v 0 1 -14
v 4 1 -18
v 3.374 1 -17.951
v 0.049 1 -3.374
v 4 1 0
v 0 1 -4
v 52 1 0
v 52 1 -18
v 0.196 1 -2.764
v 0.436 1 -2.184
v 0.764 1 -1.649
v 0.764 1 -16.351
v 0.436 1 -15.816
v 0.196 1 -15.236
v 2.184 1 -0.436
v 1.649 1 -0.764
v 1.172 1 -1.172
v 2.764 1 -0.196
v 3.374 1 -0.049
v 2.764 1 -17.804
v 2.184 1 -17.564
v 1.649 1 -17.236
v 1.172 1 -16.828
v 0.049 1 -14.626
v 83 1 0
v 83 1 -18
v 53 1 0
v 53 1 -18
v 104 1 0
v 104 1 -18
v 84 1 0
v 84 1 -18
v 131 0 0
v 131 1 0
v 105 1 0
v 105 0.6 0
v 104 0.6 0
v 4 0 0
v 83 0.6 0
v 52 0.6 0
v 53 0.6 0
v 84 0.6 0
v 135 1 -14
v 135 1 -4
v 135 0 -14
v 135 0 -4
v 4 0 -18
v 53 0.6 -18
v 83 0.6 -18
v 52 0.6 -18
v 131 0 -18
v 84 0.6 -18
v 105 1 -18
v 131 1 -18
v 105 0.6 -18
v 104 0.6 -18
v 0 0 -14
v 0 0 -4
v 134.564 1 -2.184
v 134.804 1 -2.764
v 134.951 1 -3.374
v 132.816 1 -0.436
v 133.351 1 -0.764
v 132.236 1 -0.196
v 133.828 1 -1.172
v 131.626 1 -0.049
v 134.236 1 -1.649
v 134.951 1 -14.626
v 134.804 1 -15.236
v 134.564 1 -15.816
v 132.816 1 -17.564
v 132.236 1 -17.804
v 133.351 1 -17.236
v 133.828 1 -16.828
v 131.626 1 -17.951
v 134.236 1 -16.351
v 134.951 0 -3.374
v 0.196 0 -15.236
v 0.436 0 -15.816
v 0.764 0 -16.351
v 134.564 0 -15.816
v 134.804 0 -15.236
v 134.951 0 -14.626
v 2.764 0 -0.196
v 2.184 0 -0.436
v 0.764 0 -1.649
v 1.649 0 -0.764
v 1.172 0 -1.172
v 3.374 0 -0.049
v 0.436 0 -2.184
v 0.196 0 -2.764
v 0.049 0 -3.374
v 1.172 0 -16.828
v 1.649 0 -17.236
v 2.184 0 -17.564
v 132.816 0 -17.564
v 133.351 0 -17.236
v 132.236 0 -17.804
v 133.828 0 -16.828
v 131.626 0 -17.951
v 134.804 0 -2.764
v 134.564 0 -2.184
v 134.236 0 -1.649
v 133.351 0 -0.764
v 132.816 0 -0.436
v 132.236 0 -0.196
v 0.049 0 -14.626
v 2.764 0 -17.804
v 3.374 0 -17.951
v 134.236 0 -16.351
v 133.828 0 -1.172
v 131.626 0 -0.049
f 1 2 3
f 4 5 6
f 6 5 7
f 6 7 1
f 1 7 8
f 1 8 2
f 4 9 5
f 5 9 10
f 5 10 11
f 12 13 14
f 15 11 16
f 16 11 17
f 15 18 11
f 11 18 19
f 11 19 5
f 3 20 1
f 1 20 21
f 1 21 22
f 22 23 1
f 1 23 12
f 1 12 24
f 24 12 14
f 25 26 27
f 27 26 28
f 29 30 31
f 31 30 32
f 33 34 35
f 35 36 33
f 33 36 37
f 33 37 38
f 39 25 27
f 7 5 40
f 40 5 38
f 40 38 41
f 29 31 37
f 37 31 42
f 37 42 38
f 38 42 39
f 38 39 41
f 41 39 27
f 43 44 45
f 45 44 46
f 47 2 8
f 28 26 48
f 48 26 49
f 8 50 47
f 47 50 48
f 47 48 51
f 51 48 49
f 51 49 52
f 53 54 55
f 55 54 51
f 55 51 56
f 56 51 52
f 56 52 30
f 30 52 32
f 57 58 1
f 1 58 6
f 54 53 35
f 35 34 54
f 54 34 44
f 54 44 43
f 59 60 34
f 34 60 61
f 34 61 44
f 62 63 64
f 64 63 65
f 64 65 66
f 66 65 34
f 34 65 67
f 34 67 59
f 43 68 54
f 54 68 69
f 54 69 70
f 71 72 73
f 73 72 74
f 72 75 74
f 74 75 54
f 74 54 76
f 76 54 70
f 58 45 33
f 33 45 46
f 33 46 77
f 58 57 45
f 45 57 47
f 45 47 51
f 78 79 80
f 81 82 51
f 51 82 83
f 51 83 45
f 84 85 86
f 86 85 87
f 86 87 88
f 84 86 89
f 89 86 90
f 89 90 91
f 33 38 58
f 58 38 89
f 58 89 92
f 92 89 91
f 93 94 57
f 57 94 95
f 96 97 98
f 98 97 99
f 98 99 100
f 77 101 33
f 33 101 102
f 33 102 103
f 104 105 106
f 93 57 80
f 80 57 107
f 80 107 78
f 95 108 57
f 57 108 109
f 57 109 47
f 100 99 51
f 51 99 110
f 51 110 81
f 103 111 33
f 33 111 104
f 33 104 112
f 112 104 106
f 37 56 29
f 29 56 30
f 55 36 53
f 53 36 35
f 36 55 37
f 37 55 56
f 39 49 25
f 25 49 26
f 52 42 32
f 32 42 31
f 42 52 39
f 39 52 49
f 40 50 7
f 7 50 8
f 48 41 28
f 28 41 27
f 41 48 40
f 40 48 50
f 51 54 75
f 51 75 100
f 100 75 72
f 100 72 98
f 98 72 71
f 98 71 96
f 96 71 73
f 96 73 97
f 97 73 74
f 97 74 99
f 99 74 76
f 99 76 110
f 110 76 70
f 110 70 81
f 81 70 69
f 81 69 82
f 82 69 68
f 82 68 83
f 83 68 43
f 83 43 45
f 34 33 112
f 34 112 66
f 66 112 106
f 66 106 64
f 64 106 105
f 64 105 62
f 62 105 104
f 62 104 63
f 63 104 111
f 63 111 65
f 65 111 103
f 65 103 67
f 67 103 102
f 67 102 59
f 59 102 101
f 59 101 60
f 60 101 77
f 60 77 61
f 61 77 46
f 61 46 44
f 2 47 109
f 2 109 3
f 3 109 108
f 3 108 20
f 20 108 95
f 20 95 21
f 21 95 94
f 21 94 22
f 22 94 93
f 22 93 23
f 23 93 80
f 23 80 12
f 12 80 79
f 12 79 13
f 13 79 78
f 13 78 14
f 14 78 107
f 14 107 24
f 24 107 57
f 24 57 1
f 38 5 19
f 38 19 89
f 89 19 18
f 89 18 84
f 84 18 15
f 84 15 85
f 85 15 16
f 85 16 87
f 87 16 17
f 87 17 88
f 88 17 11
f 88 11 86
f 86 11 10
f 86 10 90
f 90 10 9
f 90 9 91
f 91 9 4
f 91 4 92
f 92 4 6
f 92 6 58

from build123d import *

# Parameters (mm, degrees)
SKETCH1_W           = 135
SKETCH1_H           = 18
BOSS_EXTRUDE1_DEPTH = 1
SKETCH2_W           = 1
SKETCH2_H           = 18
CUT_EXTRUDE1_DEPTH  = 0.4
FILLET1_R           = 4


with BuildPart() as part:
    # Sketch1 → Boss-Extrude1 (new body)
    with BuildSketch(Plane(origin=(0, 0, 0), x_dir=(1, 0, 0), z_dir=(0, 1, 0))):
        with Locations((67.5, 9)):
            Rectangle(SKETCH1_W, SKETCH1_H)
    extrude(amount=BOSS_EXTRUDE1_DEPTH)

    # Sketch2 → Cut-Extrude1 (cut)
    with BuildSketch(Plane(origin=(0, 1, 0), x_dir=(1, 0, 0), z_dir=(0, 1, 0))):
        with Locations((52.5, 9)):
            Rectangle(SKETCH2_W, SKETCH2_H)
        with Locations((83.5, 9)):
            Rectangle(SKETCH2_W, SKETCH2_H)
        with Locations((104.5, 9)):
            Rectangle(SKETCH2_W, SKETCH2_H)
    extrude(amount=-CUT_EXTRUDE1_DEPTH, mode=Mode.SUBTRACT)

    # Fillet1
    fillet1_edges = [part.edges().sort_by_distance(p)[0] for p in [
        (0, 0.5, 0),
        (0, 0.5, -18),
        (135, 0.5, -18),
        (135, 0.5, 0),
    ]]
    fillet(fillet1_edges, radius=FILLET1_R)


solid = part.part
